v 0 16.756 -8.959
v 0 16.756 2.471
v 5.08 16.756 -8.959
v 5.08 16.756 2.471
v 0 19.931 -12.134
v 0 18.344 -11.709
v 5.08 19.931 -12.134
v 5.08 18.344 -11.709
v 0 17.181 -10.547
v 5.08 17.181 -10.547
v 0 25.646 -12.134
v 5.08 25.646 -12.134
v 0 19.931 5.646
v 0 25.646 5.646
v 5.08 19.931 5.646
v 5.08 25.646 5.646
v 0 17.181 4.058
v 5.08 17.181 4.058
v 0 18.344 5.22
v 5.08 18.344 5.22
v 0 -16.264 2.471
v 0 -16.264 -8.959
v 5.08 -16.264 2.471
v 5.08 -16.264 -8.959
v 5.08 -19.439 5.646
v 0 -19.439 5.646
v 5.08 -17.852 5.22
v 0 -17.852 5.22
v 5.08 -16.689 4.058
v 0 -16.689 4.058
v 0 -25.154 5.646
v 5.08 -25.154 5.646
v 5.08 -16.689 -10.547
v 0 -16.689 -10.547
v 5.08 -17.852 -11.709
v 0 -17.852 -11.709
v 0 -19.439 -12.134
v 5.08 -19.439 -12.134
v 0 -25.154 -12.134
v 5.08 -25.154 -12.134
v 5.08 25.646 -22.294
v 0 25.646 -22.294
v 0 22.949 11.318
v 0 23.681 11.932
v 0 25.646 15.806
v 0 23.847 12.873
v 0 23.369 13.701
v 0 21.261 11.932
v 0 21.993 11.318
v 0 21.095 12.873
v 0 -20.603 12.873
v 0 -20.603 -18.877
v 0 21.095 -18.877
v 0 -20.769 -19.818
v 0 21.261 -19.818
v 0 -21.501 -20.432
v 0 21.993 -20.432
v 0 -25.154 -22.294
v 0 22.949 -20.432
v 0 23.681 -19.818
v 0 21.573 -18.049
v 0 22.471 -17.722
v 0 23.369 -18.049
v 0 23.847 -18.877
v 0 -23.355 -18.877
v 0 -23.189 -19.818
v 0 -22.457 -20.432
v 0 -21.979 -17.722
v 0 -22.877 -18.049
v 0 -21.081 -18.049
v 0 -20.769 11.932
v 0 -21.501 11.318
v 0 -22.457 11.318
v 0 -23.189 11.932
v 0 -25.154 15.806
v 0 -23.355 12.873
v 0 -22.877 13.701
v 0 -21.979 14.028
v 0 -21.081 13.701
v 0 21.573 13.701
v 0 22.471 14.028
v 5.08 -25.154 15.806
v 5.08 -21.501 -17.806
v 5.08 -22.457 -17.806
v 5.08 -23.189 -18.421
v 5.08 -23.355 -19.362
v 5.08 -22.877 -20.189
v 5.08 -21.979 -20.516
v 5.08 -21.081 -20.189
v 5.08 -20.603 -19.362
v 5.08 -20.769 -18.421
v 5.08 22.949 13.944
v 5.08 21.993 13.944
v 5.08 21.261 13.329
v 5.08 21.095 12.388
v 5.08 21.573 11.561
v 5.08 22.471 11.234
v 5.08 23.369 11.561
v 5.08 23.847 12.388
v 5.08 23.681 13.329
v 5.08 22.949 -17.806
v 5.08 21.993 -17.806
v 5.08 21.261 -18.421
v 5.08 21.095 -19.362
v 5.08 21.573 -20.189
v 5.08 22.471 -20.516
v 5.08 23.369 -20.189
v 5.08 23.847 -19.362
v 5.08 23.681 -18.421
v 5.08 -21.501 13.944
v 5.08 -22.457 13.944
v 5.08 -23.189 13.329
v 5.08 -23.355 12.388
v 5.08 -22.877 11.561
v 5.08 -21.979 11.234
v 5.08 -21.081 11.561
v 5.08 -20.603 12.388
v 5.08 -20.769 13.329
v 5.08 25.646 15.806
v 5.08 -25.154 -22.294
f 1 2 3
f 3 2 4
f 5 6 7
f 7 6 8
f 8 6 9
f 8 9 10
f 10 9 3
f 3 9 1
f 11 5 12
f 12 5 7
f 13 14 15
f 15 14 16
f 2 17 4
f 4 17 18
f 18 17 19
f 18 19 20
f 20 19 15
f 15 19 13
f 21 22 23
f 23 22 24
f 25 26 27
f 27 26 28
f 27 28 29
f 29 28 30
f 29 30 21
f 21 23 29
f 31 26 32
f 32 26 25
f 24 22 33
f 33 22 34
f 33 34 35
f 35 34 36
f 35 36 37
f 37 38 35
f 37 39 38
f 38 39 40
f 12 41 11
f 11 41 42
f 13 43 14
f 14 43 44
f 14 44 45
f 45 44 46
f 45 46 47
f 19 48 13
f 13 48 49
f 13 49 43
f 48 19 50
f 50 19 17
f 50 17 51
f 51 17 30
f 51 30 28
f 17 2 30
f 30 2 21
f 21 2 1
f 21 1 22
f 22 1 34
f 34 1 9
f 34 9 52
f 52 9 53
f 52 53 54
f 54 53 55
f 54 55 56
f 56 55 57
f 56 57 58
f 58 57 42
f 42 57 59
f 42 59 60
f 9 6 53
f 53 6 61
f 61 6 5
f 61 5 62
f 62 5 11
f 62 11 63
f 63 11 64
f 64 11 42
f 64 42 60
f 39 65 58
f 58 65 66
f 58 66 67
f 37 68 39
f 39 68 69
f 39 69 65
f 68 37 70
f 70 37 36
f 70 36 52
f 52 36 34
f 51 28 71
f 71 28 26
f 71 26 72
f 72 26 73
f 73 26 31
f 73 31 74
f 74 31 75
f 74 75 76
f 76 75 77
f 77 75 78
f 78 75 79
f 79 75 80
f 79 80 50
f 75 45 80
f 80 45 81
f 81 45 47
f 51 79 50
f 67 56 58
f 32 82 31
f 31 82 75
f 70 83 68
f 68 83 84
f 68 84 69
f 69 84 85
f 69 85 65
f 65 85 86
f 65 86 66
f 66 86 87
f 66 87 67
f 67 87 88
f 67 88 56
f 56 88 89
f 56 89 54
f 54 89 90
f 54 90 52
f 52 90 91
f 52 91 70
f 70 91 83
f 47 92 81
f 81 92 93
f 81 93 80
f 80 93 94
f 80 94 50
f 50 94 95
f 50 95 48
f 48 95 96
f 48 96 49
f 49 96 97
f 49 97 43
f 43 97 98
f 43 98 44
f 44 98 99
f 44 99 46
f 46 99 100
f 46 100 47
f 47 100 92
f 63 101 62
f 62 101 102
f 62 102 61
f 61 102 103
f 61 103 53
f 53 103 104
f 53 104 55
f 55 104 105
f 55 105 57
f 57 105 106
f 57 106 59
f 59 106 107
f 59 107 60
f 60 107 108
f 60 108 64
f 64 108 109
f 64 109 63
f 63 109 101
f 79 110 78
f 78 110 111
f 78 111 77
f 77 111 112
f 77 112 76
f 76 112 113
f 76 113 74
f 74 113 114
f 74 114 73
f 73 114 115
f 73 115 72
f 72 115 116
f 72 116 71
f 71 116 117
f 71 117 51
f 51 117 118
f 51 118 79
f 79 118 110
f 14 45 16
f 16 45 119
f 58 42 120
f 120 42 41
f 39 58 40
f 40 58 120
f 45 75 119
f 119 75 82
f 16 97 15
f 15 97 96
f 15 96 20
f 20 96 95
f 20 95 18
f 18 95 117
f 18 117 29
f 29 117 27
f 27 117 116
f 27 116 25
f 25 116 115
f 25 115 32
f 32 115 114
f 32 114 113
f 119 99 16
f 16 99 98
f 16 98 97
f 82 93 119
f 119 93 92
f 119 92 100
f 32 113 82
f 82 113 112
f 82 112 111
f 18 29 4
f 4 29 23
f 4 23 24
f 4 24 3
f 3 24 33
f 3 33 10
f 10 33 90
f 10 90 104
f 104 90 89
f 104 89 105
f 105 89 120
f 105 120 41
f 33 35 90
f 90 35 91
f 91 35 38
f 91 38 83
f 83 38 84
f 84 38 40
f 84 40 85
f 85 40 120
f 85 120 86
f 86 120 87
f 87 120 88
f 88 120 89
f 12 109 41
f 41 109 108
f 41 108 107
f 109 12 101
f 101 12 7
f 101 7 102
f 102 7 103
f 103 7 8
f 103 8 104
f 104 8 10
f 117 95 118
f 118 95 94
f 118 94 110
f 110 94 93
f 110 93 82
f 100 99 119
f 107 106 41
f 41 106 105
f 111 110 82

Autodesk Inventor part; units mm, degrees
ref_plane "YZ Plane" through (0, 0, 0) normal (1, 0, 0) x (0, 1, 0)
ref_plane "XZ Plane" through (0, 0, 0) normal (0, 1, 0) x (-1, 0, 0)
ref_plane "XY Plane" through (0, 0, 0) normal (0, 0, 1) x (1, 0, 0)
sketch "Sketch1" plane through (0, 0, 0) normal (1, 0, 0) x (0, 1, 0)
  line L0 (25.646, 15.8058) -> (-25.154, 15.8058)
  line L1 (-25.154, 15.8058) -> (-25.154, -22.2942)
  line L2 (-25.154, -22.2942) -> (25.646, -22.2942)
  line L3 (25.646, -22.2942) -> (25.646, 15.8058)
  point P0 (0, 0)
  dimension "d0" = 50.8
  dimension "d1" = 38.1
extrude "Extrusion1" add sketch "Sketch1" along normal blind 5.08
sketch "Sketch2" plane through (5.08, 0, 0) normal (1, 0, 0) x (0, 0, -1)
  line L0 (-15.8058, 25.646) -> (-15.8058, -25.154) projected
  line L1 (22.2942, -25.154) -> (22.2942, 25.646) projected
  line L2 (22.2942, 25.646) -> (-15.8058, 25.646) projected
  line L3 (-15.8058, -25.154) -> (22.2942, -25.154) projected
  point P0 (0, 0)
  point P1 (-12.6308, 22.471)
  point P2 (19.1192, 22.471)
  point P3 (19.1192, -21.979)
  point P4 (-12.6308, -21.979)
  dimension "d4" = 3.175
  dimension "d5" = 0
  dimension "d6" = 3.175
  dimension "d7" = 0
  dimension "d8" = 0
  dimension "d9" = 3.175
  dimension "d10" = 0
  dimension "d11" = 3.175
hole "Hole1" at (5.08, 22.471, 12.6308) at (5.08, 22.471, -19.1192) at (5.08, -21.979, -19.1192) at (5.08, -21.979, 12.6308) direction (-1, 0, 0) diameter 2.794 end through all clearance for "Flat Head Machine Screw (82)" size "#3" standard "Ansi Unified Screw Threads"
sketch "Sketch3" plane through (5.08, 0, 0) normal (1, 0, 0) x (0, 0, -1)
  line L0 (-5.6458, 25.646) -> (12.1342, 25.646)
  line L1 (12.1342, 25.646) -> (12.1342, 19.931)
  line L2 (8.9592, 16.756) -> (-2.4708, 16.756)
  line L3 (-5.6458, 19.931) -> (-5.6458, 25.646)
  line L4 (-2.4708, -16.264) -> (8.9592, -16.264)
  line L5 (12.1342, -19.439) -> (12.1342, -25.154)
  line L6 (12.1342, -25.154) -> (-5.6458, -25.154)
  line L7 (-5.6458, -25.154) -> (-5.6458, -19.439)
  line L8 (22.2942, 25.646) -> (-15.8058, 25.646) projected
  line L9 (-15.8058, -25.154) -> (22.2942, -25.154) projected
  line L10 (22.2942, -25.154) -> (22.2942, 25.646) projected
  line L11 (-15.8058, 25.646) -> (-15.8058, -25.154) projected
  arc A0 (-5.6458, 19.931) -> (-2.4708, 16.756) centre (-2.4708, 19.931) ccw
  arc A1 (8.9592, 16.756) -> (12.1342, 19.931) centre (8.9592, 19.931) ccw
  arc A2 (12.1342, -19.439) -> (8.9592, -16.264) centre (8.9592, -19.439) ccw
  arc A3 (-2.4708, -16.264) -> (-5.6458, -19.439) centre (-2.4708, -19.439) ccw
  point P0 (0, 0)
  point P1 (12.1342, 16.756)
  point P2 (-5.6458, 16.756)
  point P3 (-5.6458, -16.264)
  point P4 (12.1342, -16.264)
  dimension "d19" = 0
  dimension "d20" = 0
  dimension "d21" = 0
  dimension "d22" = 0
  dimension "d23" = 10.16
  dimension "d24" = 10.16
  dimension "d25" = 8.89
  dimension "d26" = 8.89
  dimension "d29" = 3.175
extrude "Extrusion2" cut sketch "Sketch3" against normal blind 20.6375 contours L0 L1 A1 L2 A0 L3 | L7 A3 L4 A2 L5 L6
properties part number "PowerPlugBlockBack"
